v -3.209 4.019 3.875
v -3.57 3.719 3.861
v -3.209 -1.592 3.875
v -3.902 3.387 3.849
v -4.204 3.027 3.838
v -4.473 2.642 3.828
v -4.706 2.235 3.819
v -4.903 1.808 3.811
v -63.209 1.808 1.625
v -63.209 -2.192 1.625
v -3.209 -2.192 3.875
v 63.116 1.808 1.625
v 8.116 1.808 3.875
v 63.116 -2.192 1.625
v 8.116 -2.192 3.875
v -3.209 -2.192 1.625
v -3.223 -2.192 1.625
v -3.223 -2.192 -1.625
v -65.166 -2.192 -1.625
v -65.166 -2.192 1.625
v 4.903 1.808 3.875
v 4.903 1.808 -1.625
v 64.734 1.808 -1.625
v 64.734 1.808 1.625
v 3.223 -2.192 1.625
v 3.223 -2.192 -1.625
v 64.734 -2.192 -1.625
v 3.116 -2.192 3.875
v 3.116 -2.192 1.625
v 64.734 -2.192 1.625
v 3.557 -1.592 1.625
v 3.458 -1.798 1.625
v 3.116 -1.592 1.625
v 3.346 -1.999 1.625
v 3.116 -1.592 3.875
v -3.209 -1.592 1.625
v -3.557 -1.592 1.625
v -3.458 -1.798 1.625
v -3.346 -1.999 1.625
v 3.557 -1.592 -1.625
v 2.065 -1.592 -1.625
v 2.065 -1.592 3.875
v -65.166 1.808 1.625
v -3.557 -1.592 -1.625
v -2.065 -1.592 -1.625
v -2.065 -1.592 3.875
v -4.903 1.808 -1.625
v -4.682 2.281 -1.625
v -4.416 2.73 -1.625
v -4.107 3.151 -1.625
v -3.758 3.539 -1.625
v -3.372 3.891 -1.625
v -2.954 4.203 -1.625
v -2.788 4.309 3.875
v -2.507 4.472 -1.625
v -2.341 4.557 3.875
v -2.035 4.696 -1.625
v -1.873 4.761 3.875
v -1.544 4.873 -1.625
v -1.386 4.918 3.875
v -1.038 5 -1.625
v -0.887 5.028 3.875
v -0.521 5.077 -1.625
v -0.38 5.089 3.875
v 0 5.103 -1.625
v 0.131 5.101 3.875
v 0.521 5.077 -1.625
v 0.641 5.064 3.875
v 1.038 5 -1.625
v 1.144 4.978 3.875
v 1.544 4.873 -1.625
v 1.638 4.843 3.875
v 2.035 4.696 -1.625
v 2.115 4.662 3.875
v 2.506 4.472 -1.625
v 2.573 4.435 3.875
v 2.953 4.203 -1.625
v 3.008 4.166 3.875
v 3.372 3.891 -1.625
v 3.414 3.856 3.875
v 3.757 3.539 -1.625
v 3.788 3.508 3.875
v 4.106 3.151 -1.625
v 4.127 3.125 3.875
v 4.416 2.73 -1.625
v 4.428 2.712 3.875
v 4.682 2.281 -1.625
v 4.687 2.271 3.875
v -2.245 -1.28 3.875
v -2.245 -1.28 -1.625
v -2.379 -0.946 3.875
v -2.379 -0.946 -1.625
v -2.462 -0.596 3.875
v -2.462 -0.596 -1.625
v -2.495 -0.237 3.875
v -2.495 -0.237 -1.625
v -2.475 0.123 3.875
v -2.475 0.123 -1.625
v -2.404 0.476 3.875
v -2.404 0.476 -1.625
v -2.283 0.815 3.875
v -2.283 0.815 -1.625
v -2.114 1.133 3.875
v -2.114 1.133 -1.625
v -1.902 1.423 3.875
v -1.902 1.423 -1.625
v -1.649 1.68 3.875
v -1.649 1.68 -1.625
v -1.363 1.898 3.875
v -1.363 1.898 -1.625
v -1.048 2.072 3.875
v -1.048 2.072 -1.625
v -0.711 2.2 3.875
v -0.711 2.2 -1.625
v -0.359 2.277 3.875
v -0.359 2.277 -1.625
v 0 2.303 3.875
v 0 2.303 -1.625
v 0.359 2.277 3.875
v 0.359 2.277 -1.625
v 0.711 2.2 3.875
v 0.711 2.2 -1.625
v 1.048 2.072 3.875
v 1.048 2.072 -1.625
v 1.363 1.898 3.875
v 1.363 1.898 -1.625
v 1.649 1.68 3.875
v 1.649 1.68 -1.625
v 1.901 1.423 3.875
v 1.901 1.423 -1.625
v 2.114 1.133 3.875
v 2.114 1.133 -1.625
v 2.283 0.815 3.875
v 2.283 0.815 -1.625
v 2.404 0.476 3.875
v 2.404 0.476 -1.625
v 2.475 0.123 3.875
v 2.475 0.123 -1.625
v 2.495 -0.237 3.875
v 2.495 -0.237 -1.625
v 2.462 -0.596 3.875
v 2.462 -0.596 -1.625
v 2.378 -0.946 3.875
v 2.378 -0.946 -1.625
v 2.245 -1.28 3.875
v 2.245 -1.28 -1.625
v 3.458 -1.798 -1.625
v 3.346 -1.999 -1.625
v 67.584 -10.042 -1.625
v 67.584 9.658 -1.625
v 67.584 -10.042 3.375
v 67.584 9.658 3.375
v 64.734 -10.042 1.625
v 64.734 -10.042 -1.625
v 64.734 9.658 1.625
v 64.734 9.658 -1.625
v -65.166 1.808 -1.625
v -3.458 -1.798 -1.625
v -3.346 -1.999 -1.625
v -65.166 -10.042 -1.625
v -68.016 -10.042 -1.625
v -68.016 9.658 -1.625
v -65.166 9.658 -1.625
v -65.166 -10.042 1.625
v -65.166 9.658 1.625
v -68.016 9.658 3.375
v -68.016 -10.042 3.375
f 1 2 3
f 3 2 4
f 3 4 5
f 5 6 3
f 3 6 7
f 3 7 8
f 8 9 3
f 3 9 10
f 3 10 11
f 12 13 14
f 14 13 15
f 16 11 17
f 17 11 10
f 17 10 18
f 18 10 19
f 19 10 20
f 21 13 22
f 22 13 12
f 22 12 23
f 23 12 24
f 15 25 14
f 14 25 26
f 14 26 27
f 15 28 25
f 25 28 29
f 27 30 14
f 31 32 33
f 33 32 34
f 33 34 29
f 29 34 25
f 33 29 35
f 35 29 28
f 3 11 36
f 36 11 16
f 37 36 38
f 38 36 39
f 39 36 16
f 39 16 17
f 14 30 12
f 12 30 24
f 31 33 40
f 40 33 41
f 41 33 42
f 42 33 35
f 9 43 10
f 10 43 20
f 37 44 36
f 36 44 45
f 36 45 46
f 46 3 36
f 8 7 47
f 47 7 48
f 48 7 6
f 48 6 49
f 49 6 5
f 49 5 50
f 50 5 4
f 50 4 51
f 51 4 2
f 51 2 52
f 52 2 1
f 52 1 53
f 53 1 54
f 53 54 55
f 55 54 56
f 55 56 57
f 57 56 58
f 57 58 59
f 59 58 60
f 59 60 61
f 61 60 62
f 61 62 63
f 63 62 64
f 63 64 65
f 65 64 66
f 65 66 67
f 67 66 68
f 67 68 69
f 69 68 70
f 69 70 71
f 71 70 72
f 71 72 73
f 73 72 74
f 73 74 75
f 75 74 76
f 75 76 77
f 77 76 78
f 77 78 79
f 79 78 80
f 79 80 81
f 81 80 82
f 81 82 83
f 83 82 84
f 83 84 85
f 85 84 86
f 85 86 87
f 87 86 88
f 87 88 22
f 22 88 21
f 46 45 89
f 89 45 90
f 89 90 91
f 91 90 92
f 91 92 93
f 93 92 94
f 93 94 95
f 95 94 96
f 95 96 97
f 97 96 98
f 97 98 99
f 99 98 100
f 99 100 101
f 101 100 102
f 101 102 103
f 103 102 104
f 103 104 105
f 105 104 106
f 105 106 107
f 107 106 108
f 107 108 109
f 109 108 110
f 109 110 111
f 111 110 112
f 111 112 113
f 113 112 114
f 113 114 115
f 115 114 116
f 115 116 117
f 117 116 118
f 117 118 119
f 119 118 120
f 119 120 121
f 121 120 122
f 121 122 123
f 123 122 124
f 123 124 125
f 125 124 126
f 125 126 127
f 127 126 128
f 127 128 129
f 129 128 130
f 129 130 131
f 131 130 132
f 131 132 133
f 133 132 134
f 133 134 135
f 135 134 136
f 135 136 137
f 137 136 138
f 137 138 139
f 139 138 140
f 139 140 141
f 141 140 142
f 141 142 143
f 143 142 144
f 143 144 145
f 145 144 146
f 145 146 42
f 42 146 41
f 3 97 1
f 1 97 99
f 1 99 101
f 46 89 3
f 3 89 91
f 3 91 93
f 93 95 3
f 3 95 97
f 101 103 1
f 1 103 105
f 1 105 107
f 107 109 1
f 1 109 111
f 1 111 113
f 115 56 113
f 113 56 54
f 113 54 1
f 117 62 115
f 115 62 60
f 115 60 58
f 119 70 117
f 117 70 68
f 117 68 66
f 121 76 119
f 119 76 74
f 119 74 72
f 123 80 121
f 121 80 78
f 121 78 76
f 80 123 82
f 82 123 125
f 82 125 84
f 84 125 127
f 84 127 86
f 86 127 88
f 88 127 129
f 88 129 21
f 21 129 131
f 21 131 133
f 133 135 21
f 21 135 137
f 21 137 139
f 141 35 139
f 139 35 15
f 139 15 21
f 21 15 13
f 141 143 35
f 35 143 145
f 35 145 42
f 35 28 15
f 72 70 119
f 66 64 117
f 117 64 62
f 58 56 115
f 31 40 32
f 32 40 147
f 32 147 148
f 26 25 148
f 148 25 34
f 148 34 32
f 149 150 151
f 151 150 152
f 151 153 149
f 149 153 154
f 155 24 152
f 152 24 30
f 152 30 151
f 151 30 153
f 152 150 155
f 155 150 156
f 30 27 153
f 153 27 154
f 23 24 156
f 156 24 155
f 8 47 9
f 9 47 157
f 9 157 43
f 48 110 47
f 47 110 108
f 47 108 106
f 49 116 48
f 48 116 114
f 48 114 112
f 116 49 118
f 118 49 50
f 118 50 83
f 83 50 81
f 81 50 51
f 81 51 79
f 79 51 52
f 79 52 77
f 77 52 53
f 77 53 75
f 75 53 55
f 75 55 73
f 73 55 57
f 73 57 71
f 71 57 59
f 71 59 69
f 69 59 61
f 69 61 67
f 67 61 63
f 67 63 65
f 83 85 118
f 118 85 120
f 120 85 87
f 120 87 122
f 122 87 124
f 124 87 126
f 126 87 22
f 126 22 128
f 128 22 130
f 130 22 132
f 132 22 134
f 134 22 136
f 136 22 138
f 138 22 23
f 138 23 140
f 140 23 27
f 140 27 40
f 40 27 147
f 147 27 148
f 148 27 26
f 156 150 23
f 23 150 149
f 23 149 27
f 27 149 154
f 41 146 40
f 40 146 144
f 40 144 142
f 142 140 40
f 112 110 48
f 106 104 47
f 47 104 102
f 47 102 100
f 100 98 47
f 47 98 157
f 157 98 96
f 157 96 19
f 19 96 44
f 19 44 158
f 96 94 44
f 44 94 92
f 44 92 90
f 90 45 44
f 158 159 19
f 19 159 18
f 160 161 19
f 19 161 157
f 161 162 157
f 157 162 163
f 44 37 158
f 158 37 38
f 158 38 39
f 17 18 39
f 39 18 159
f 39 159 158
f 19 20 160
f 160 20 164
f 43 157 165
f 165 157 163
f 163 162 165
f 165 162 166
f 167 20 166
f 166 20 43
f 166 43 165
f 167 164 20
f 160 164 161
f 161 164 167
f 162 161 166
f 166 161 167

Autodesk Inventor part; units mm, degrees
ref_plane "YZ Plane" through (0, 0, 0) normal (1, 0, 0) x (0, 1, 0)
ref_plane "XZ Plane" through (0, 0, 0) normal (0, 1, 0) x (-1, 0, 0)
ref_plane "XY Plane" through (0, 0, 0) normal (0, 0, 1) x (1, 0, 0)
sketch "Skizze1" plane through (0, 0, 0) normal (0, 0, 1) x (1, 0, 0)
  line L0 (-68.016, 1.808) -> (67.584, 1.808)
  line L1 (67.584, 1.808) -> (67.584, -2.192)
  line L2 (67.584, -2.192) -> (-68.016, -2.192)
  line L3 (-68.016, -2.192) -> (-68.016, 1.808)
  line L4 (-68.016, 1.808) -> (67.584, -2.192) construction
  line L5 (67.584, 1.808) -> (-68.016, -2.192) construction
  point P0 (0, 0)
  point P1 (-0.216, -0.192)
  point P2 (-0.216, -0.192)
  dimension "d0" = 135.6
  dimension "d1" = 4
extrude "Extrusion1" add sketch "Skizze1" along normal mid plane 3.25
ref_plane "Arbeitsebene1" through (-68.016, -0.192, 1.625) normal (0, -1, 0) x (1, 0, 0)
sketch "Skizze2" plane through (-68.016, -0.192, 1.625) normal (0, -1, 0) x (1, 0, 0)
  line L0 (0, -3.25) -> (0, 0) projected
  line L1 (0, -3.25) -> (135.6, -3.25) projected
  line L2 (0, 0) -> (2.85, 0)
  line L3 (2.85, 0) -> (2.85, -3.25)
  line L4 (2.85, -3.25) -> (0, -3.25)
  line L5 (0, -3.25) -> (0, 0)
  line L6 (0, 0) -> (0, 1.75)
  line L7 (0, 1.75) -> (2.85, 0)
  line L8 (135.6, -3.25) -> (135.6, 0) projected
  line L9 (135.6, 0) -> (132.75, 0)
  line L10 (132.75, 0) -> (132.75, -3.25)
  line L11 (132.75, -3.25) -> (135.6, -3.25)
  line L12 (135.6, -3.25) -> (135.6, 0)
  line L13 (135.6, 0) -> (135.6, 1.75)
  line L14 (135.6, 1.75) -> (132.75, 0)
  point P0 (68.016, -1.625)
  dimension "d4" = 2.85
  dimension "d5" = 1.75
  dimension "d6" = 2.85
extrude "Extrusion2" add sketch "Skizze2" along normal mid plane 19.7
sketch "Skizze3" plane through (0, 0, 1.625) normal (0, 0, 1) x (1, 0, 0)
  circle A0 centre (0, 0) radius 3.8975
  dimension "d9" = 7.795
extrude "Extrusion3" cut sketch "Skizze3" against normal through all
sketch "Skizze4" plane through (0, 0, -1.625) normal (0, 0, -1) x (-1, 0, 0)
  line L0 (0.0769, -0.1614) -> (6.2269, -0.1614) construction
  circle A0 centre (0.0001, -0.1921) radius 2.495
  circle A1 centre (0.0001, -0.1921) radius 5.295
  line L1 (-24.5999, -1.5921) -> (24.6001, -1.5921)
  point P0 (-5.2949, -0.1921)
  point P1 (5.2951, -0.1921)
  point P2 (2.0653, -1.5921)
  point P3 (5.1066, -1.5921)
  point P4 (-5.1065, -1.5921)
  point P5 (-2.0651, -1.5921)
  dimension "d27" = 2.8
  dimension "d28" = 4.99
  dimension "d29" = 1.4
extrude "Extrusion4" add sketch "Skizze4" against normal blind 5.5 contours A0 L1 A1 picked at (4.3097, 0.2335)
sketch "Skizze5" plane through (0, 0, 1.625) normal (0, 0, 1) x (1, 0, 0)
  line L0 (-4.9028, 1.808) -> (-65.166, 1.808) projected
  line L1 (-3.2227, -2.192) -> (-65.166, -2.192) projected
  line L2 (-3.2094, 1.808) -> (-63.2094, 1.808)
  line L3 (-63.2094, 1.808) -> (-63.2094, -2.192)
  line L4 (-63.2094, -2.192) -> (-3.2094, -2.192)
  line L5 (-3.2094, -2.192) -> (-3.2094, 1.808)
  line L6 (3.2227, -2.192) -> (64.734, -2.192) projected
  line L7 (3.1164, 1.808) -> (63.1164, 1.808)
  line L8 (63.1164, 1.808) -> (63.1164, -2.192)
  line L9 (63.1164, -2.192) -> (3.1164, -2.192)
  line L10 (3.1164, -2.192) -> (3.1164, 1.808)
  point P0 (0, 0)
  point P1 (-8.6889, 1.808)
  point P2 (-8.6001, -2.192)
  point P3 (8.6889, 1.808)
  point P4 (8.6001, -2.192)
  point P5 (3.1164, -2.192)
  point P6 (-3.2094, -2.192)
  point P7 (-63.2094, 1.808)
  point P8 (63.1164, -2.192)
  point P9 (-2.0688, 1.808)
  dimension "d17" = 60
  dimension "d18" = 60
extrude "Extrusion5" add sketch "Skizze5" along normal blind 2.25
sketch "Skizze6" plane through (-65.166, -2.192, -1.625) normal (0, -1, 0) x (1, 0, 0)
  line L0 (1.9566, 5.5) -> (61.9566, 5.5) projected
  line L1 (1.9566, 5.5) -> (61.9566, 5.5)
  line L2 (56.9566, 5.5) -> (56.9566, 3.25)
  line L3 (56.9566, 3.25) -> (1.9566, 3.25)
  line L4 (1.9566, 3.25) -> (1.9566, 5.5)
  line L5 (61.9566, 5.5) -> (1.9566, 3.25)
  line L6 (128.2824, 3.25) -> (128.2824, 5.5) projected
  line L7 (128.2824, 5.5) -> (73.2824, 5.5)
  line L8 (73.2824, 5.5) -> (73.2824, 3.25)
  line L9 (73.2824, 3.25) -> (128.2824, 3.25)
  line L10 (128.2824, 3.25) -> (128.2824, 5.5)
  line L11 (73.2824, 5.5) -> (128.2824, 3.25)
  point P0 (65.166, 1.625)
  point P1 (56.5659, 5.5)
  point P2 (56.5659, 5.5)
  point P3 (56.5659, 5.5)
  dimension "d21" = 55
  dimension "d22" = 2.25
  dimension "d23" = 55
  dimension "d26" = 2.25
extrude "Extrusion6" cut sketch "Skizze6" against normal through all contours L0 L2 L5 L4 | L0 L5 L2 | L11 L7 L6
properties part number "2024_08_23_Holder_NMR_tube"
